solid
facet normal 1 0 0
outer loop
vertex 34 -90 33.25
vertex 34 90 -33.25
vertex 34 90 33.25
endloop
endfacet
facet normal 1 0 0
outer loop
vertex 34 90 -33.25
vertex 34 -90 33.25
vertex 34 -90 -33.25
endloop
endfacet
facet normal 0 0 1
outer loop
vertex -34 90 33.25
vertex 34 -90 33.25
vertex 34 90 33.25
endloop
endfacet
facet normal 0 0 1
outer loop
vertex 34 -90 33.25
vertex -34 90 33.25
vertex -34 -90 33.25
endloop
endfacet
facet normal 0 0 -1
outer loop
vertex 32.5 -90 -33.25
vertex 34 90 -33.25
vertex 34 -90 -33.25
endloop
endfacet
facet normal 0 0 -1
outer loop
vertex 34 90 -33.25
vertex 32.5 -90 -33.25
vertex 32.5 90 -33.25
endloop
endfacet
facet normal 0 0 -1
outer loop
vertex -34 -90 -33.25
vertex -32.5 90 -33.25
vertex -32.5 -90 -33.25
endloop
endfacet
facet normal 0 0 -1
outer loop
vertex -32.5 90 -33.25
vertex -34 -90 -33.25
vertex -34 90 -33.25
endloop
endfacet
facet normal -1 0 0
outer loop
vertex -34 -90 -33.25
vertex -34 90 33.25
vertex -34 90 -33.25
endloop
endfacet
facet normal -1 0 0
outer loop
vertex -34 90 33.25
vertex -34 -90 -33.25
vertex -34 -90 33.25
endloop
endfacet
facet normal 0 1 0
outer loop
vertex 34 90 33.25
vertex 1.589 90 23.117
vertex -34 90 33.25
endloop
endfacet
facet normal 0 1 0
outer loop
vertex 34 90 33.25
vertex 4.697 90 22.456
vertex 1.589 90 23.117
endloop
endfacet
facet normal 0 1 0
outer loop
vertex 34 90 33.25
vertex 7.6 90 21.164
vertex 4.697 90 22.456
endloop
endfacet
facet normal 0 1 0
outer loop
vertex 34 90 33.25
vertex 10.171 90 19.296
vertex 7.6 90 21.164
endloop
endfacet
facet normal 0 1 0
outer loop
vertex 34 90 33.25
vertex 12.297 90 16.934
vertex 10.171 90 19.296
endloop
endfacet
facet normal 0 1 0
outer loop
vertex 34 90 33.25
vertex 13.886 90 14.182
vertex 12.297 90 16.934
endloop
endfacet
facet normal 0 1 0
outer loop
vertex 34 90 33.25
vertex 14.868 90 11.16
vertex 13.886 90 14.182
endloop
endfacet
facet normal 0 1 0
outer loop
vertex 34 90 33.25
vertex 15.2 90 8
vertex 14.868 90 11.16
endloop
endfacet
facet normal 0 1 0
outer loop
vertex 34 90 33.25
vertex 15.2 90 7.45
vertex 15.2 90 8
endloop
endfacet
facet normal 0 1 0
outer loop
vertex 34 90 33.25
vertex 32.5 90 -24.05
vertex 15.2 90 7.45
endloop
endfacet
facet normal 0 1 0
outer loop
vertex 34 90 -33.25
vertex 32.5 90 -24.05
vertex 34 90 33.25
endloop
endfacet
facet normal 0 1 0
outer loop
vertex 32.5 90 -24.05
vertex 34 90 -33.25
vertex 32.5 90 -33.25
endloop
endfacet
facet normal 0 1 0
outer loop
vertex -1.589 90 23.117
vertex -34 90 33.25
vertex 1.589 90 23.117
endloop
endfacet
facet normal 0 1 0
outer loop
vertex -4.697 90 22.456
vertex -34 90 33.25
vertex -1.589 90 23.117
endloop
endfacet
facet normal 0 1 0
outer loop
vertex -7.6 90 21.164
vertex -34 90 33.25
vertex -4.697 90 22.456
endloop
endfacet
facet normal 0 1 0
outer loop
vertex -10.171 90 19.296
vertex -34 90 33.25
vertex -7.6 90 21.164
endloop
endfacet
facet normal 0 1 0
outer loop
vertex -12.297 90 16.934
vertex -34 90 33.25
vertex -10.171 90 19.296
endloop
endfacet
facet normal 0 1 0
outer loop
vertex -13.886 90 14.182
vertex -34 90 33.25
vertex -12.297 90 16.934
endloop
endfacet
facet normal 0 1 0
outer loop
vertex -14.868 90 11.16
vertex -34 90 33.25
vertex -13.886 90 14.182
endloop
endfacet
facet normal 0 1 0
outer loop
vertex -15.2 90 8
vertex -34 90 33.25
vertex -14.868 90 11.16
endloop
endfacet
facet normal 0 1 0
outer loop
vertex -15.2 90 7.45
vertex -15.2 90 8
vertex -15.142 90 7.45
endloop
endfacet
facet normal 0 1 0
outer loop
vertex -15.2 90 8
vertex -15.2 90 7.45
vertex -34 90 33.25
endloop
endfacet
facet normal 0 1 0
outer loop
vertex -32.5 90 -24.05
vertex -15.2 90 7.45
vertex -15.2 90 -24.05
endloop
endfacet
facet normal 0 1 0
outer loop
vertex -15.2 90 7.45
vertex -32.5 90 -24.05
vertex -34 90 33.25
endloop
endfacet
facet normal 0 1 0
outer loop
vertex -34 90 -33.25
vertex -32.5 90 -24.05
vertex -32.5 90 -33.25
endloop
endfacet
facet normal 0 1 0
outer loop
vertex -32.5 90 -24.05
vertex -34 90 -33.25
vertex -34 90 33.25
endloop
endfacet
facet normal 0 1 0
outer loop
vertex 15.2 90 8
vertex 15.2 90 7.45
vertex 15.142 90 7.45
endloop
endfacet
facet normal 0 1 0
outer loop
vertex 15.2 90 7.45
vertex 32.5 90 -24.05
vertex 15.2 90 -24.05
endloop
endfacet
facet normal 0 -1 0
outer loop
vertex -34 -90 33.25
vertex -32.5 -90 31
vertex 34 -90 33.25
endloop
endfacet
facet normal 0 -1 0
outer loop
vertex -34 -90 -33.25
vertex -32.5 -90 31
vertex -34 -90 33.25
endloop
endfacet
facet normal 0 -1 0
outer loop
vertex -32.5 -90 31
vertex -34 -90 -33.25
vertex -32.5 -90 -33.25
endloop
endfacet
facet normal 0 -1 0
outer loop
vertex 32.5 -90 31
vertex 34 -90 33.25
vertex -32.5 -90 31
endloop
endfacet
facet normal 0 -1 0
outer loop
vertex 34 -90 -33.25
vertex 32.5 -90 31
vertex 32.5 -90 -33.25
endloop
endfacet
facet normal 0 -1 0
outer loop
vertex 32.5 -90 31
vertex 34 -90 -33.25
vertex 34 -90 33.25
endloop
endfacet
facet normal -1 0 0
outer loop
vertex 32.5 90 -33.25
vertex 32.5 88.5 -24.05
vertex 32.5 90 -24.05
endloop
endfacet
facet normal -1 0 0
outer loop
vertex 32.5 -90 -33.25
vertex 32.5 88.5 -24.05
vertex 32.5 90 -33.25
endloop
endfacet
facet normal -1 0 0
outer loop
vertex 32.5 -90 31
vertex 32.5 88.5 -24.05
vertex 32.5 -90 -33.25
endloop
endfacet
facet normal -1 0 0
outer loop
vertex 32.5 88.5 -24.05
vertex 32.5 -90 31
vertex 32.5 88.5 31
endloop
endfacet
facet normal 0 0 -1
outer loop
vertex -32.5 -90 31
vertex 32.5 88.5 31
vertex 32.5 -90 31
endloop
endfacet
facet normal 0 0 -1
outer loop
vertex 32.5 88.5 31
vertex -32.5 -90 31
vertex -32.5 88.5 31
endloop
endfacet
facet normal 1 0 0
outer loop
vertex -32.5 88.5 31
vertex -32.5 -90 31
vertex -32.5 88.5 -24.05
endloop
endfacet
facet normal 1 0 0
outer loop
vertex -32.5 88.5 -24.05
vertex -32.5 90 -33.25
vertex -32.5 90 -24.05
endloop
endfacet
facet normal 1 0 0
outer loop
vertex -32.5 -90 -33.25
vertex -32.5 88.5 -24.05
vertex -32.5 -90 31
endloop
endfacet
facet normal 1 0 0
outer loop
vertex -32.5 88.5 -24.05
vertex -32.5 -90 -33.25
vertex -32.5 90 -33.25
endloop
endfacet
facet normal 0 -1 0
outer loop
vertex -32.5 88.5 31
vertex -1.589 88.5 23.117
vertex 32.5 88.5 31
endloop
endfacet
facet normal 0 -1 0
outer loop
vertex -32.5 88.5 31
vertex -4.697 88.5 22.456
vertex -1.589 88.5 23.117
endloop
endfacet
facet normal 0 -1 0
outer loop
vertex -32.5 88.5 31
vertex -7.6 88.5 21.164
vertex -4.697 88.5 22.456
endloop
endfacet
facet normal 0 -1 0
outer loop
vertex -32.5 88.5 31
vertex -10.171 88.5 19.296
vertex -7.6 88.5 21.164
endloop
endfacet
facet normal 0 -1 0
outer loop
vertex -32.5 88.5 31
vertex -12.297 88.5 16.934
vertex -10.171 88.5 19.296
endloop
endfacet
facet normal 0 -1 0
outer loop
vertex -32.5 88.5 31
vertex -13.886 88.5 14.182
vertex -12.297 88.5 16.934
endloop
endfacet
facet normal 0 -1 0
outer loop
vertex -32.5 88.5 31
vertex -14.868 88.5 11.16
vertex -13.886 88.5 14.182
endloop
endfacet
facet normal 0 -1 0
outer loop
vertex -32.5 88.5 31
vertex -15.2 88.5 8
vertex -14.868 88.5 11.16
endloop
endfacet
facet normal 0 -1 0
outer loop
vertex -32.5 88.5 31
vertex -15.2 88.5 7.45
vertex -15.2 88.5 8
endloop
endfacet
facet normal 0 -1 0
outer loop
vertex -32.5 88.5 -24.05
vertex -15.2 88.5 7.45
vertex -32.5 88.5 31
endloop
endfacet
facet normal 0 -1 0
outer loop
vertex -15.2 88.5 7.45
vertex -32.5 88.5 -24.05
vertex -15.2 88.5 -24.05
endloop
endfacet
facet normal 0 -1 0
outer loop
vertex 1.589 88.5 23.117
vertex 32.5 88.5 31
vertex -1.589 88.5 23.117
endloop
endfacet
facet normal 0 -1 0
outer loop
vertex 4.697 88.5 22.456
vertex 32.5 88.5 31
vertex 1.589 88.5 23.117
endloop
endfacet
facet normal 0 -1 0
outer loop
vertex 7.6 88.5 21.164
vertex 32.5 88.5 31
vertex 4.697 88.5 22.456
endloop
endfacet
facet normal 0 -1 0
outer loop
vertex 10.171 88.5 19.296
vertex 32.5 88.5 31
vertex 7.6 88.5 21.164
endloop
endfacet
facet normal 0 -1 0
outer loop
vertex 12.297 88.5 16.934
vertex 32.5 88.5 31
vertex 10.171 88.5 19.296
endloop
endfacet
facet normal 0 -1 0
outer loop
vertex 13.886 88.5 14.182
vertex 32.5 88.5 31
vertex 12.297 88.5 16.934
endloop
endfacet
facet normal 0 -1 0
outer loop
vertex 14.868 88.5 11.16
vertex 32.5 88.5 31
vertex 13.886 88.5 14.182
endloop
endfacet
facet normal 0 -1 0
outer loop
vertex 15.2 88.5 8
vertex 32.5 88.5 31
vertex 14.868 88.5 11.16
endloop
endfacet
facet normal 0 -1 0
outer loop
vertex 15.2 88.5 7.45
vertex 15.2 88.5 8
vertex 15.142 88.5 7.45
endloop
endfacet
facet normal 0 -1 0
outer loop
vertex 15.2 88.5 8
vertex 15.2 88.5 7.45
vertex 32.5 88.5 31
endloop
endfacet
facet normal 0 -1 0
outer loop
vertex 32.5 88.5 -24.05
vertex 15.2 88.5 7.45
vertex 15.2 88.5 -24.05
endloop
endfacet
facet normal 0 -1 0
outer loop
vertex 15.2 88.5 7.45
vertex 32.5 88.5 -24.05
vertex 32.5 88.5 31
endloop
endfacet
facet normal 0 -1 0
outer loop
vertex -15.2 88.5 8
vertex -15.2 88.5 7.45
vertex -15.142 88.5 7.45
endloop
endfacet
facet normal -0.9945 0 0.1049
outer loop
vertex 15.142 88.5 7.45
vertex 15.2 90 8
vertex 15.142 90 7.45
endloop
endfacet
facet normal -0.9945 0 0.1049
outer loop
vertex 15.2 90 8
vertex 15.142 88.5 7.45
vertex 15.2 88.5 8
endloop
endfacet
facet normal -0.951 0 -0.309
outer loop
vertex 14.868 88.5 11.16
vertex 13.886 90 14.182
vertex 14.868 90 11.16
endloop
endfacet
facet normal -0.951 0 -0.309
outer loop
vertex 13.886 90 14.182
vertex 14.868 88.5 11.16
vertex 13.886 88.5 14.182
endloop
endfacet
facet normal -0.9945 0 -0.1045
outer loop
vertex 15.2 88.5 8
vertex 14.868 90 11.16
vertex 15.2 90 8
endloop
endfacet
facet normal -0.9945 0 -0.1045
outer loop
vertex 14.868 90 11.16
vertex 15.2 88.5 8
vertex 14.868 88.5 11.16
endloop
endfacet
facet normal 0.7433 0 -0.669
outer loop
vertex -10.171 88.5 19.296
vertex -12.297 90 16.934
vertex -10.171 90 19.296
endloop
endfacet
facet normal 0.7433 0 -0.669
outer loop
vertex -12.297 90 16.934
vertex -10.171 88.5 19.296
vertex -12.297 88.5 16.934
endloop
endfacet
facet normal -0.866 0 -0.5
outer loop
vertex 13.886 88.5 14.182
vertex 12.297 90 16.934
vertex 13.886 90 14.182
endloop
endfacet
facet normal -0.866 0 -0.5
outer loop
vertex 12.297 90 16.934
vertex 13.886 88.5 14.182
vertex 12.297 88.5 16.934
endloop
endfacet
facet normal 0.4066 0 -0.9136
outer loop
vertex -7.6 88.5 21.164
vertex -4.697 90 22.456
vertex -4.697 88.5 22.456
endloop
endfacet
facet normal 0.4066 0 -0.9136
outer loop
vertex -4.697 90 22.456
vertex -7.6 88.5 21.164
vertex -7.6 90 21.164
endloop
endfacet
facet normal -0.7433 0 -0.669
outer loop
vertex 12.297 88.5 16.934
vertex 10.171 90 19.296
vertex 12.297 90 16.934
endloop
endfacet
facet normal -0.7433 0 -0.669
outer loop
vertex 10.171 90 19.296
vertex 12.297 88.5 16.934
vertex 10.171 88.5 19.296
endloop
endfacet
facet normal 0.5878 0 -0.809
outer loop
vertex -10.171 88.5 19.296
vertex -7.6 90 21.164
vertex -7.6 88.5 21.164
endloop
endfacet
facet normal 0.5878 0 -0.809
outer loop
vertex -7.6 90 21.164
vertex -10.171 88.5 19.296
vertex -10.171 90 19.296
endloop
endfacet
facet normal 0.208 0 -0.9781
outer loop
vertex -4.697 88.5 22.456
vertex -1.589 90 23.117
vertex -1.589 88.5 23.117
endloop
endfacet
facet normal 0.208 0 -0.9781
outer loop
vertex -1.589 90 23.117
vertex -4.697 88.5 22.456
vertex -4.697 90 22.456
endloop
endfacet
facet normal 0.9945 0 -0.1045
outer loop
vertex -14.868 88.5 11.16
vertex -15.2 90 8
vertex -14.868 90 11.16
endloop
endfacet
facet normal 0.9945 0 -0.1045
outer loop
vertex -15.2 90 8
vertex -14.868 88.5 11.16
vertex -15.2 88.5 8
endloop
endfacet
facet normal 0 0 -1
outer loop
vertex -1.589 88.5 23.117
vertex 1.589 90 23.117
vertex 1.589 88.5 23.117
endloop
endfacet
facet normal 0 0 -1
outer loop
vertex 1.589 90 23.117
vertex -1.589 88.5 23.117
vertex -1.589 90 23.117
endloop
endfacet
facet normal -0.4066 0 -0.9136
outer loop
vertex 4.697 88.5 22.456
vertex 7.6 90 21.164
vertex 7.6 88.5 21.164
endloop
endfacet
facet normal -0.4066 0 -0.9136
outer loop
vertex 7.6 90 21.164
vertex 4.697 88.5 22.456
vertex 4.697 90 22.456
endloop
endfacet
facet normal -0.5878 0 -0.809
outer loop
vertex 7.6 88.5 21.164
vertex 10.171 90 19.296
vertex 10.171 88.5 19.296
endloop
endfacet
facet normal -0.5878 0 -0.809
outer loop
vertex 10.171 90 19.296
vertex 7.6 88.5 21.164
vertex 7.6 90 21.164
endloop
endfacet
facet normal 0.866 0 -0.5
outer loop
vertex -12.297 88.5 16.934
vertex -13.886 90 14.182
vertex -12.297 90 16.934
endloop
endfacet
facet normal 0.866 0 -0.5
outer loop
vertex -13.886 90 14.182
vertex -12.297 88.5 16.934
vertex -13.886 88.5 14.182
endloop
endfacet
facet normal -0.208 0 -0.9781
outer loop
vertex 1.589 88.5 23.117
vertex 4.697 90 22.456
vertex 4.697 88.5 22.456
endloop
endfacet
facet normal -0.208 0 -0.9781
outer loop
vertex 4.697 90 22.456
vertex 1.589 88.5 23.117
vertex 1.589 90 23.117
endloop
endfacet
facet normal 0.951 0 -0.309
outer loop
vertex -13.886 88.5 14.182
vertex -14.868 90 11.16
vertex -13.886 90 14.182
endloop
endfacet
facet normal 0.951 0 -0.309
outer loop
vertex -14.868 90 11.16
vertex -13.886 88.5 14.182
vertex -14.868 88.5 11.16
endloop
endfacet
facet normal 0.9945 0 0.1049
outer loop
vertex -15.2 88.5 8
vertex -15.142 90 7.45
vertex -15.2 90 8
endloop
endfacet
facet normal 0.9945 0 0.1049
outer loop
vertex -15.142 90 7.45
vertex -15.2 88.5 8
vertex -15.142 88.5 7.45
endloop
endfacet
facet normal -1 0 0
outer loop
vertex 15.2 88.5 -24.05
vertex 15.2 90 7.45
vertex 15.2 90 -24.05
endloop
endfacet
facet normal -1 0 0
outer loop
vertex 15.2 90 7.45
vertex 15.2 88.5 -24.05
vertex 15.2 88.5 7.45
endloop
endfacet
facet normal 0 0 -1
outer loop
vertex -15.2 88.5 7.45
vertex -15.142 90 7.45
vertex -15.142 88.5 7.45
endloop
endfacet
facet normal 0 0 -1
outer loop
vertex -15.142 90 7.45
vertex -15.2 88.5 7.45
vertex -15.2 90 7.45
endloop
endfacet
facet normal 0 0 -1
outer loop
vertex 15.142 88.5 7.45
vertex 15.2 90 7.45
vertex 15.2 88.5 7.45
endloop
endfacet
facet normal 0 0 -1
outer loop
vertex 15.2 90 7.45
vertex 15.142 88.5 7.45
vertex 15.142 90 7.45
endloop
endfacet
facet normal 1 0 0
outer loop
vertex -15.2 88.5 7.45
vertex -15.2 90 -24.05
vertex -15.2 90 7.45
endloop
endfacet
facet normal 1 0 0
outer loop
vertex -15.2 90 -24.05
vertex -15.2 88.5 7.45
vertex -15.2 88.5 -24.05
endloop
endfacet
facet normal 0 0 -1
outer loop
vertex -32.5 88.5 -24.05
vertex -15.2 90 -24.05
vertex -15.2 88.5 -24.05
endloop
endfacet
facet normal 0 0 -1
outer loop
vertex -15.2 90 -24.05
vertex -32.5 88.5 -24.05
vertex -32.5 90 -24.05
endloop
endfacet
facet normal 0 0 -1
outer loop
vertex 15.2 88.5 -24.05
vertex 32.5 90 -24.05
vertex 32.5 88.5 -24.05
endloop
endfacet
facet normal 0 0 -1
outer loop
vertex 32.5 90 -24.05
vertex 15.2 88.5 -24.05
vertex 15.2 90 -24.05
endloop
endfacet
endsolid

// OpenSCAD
// Cubes enclosure, emission light path. DoMB SPIM
// Borys Olifirov 2024

FDM_offset = 0.2;

enc_w = 65;
enc_h = 65;
enc_l = 180;

wall_t = 1.5;

camera_d = 30;
camera_shift = 8;

p_h = 9;


module EmEnclosure() {
    union() {
        difference() {
            cube([enc_w+2*wall_t,enc_l,enc_h+wall_t], center = true);
            translate([0,0,-wall_t])
                cube([enc_w,enc_l,enc_h], center = true);
        }
        difference() {
            translate([0,enc_l/2-wall_t/2,0])
                cube([enc_w+wall_t,wall_t,enc_h+wall_t], center = true);
            translate([0,enc_l/2,camera_shift])
            rotate([90,0,0])
                cylinder(d = camera_d+2*FDM_offset,
                         h = 40,
                         center = true);
            translate([0,enc_l/2,-enc_h/4+camera_shift/2-wall_t/2])
                cube([camera_d+2*FDM_offset,
                      40,
                      enc_h/2+camera_shift+2*FDM_offset],
                     center = true);
            translate([0,enc_l/2,-enc_h/2+(p_h+FDM_offset-wall_t)/2])
                cube([enc_w+2*FDM_offset,
                      40,
                      p_h+FDM_offset],
                     center = true);
        }
    }
}

EmEnclosure();
